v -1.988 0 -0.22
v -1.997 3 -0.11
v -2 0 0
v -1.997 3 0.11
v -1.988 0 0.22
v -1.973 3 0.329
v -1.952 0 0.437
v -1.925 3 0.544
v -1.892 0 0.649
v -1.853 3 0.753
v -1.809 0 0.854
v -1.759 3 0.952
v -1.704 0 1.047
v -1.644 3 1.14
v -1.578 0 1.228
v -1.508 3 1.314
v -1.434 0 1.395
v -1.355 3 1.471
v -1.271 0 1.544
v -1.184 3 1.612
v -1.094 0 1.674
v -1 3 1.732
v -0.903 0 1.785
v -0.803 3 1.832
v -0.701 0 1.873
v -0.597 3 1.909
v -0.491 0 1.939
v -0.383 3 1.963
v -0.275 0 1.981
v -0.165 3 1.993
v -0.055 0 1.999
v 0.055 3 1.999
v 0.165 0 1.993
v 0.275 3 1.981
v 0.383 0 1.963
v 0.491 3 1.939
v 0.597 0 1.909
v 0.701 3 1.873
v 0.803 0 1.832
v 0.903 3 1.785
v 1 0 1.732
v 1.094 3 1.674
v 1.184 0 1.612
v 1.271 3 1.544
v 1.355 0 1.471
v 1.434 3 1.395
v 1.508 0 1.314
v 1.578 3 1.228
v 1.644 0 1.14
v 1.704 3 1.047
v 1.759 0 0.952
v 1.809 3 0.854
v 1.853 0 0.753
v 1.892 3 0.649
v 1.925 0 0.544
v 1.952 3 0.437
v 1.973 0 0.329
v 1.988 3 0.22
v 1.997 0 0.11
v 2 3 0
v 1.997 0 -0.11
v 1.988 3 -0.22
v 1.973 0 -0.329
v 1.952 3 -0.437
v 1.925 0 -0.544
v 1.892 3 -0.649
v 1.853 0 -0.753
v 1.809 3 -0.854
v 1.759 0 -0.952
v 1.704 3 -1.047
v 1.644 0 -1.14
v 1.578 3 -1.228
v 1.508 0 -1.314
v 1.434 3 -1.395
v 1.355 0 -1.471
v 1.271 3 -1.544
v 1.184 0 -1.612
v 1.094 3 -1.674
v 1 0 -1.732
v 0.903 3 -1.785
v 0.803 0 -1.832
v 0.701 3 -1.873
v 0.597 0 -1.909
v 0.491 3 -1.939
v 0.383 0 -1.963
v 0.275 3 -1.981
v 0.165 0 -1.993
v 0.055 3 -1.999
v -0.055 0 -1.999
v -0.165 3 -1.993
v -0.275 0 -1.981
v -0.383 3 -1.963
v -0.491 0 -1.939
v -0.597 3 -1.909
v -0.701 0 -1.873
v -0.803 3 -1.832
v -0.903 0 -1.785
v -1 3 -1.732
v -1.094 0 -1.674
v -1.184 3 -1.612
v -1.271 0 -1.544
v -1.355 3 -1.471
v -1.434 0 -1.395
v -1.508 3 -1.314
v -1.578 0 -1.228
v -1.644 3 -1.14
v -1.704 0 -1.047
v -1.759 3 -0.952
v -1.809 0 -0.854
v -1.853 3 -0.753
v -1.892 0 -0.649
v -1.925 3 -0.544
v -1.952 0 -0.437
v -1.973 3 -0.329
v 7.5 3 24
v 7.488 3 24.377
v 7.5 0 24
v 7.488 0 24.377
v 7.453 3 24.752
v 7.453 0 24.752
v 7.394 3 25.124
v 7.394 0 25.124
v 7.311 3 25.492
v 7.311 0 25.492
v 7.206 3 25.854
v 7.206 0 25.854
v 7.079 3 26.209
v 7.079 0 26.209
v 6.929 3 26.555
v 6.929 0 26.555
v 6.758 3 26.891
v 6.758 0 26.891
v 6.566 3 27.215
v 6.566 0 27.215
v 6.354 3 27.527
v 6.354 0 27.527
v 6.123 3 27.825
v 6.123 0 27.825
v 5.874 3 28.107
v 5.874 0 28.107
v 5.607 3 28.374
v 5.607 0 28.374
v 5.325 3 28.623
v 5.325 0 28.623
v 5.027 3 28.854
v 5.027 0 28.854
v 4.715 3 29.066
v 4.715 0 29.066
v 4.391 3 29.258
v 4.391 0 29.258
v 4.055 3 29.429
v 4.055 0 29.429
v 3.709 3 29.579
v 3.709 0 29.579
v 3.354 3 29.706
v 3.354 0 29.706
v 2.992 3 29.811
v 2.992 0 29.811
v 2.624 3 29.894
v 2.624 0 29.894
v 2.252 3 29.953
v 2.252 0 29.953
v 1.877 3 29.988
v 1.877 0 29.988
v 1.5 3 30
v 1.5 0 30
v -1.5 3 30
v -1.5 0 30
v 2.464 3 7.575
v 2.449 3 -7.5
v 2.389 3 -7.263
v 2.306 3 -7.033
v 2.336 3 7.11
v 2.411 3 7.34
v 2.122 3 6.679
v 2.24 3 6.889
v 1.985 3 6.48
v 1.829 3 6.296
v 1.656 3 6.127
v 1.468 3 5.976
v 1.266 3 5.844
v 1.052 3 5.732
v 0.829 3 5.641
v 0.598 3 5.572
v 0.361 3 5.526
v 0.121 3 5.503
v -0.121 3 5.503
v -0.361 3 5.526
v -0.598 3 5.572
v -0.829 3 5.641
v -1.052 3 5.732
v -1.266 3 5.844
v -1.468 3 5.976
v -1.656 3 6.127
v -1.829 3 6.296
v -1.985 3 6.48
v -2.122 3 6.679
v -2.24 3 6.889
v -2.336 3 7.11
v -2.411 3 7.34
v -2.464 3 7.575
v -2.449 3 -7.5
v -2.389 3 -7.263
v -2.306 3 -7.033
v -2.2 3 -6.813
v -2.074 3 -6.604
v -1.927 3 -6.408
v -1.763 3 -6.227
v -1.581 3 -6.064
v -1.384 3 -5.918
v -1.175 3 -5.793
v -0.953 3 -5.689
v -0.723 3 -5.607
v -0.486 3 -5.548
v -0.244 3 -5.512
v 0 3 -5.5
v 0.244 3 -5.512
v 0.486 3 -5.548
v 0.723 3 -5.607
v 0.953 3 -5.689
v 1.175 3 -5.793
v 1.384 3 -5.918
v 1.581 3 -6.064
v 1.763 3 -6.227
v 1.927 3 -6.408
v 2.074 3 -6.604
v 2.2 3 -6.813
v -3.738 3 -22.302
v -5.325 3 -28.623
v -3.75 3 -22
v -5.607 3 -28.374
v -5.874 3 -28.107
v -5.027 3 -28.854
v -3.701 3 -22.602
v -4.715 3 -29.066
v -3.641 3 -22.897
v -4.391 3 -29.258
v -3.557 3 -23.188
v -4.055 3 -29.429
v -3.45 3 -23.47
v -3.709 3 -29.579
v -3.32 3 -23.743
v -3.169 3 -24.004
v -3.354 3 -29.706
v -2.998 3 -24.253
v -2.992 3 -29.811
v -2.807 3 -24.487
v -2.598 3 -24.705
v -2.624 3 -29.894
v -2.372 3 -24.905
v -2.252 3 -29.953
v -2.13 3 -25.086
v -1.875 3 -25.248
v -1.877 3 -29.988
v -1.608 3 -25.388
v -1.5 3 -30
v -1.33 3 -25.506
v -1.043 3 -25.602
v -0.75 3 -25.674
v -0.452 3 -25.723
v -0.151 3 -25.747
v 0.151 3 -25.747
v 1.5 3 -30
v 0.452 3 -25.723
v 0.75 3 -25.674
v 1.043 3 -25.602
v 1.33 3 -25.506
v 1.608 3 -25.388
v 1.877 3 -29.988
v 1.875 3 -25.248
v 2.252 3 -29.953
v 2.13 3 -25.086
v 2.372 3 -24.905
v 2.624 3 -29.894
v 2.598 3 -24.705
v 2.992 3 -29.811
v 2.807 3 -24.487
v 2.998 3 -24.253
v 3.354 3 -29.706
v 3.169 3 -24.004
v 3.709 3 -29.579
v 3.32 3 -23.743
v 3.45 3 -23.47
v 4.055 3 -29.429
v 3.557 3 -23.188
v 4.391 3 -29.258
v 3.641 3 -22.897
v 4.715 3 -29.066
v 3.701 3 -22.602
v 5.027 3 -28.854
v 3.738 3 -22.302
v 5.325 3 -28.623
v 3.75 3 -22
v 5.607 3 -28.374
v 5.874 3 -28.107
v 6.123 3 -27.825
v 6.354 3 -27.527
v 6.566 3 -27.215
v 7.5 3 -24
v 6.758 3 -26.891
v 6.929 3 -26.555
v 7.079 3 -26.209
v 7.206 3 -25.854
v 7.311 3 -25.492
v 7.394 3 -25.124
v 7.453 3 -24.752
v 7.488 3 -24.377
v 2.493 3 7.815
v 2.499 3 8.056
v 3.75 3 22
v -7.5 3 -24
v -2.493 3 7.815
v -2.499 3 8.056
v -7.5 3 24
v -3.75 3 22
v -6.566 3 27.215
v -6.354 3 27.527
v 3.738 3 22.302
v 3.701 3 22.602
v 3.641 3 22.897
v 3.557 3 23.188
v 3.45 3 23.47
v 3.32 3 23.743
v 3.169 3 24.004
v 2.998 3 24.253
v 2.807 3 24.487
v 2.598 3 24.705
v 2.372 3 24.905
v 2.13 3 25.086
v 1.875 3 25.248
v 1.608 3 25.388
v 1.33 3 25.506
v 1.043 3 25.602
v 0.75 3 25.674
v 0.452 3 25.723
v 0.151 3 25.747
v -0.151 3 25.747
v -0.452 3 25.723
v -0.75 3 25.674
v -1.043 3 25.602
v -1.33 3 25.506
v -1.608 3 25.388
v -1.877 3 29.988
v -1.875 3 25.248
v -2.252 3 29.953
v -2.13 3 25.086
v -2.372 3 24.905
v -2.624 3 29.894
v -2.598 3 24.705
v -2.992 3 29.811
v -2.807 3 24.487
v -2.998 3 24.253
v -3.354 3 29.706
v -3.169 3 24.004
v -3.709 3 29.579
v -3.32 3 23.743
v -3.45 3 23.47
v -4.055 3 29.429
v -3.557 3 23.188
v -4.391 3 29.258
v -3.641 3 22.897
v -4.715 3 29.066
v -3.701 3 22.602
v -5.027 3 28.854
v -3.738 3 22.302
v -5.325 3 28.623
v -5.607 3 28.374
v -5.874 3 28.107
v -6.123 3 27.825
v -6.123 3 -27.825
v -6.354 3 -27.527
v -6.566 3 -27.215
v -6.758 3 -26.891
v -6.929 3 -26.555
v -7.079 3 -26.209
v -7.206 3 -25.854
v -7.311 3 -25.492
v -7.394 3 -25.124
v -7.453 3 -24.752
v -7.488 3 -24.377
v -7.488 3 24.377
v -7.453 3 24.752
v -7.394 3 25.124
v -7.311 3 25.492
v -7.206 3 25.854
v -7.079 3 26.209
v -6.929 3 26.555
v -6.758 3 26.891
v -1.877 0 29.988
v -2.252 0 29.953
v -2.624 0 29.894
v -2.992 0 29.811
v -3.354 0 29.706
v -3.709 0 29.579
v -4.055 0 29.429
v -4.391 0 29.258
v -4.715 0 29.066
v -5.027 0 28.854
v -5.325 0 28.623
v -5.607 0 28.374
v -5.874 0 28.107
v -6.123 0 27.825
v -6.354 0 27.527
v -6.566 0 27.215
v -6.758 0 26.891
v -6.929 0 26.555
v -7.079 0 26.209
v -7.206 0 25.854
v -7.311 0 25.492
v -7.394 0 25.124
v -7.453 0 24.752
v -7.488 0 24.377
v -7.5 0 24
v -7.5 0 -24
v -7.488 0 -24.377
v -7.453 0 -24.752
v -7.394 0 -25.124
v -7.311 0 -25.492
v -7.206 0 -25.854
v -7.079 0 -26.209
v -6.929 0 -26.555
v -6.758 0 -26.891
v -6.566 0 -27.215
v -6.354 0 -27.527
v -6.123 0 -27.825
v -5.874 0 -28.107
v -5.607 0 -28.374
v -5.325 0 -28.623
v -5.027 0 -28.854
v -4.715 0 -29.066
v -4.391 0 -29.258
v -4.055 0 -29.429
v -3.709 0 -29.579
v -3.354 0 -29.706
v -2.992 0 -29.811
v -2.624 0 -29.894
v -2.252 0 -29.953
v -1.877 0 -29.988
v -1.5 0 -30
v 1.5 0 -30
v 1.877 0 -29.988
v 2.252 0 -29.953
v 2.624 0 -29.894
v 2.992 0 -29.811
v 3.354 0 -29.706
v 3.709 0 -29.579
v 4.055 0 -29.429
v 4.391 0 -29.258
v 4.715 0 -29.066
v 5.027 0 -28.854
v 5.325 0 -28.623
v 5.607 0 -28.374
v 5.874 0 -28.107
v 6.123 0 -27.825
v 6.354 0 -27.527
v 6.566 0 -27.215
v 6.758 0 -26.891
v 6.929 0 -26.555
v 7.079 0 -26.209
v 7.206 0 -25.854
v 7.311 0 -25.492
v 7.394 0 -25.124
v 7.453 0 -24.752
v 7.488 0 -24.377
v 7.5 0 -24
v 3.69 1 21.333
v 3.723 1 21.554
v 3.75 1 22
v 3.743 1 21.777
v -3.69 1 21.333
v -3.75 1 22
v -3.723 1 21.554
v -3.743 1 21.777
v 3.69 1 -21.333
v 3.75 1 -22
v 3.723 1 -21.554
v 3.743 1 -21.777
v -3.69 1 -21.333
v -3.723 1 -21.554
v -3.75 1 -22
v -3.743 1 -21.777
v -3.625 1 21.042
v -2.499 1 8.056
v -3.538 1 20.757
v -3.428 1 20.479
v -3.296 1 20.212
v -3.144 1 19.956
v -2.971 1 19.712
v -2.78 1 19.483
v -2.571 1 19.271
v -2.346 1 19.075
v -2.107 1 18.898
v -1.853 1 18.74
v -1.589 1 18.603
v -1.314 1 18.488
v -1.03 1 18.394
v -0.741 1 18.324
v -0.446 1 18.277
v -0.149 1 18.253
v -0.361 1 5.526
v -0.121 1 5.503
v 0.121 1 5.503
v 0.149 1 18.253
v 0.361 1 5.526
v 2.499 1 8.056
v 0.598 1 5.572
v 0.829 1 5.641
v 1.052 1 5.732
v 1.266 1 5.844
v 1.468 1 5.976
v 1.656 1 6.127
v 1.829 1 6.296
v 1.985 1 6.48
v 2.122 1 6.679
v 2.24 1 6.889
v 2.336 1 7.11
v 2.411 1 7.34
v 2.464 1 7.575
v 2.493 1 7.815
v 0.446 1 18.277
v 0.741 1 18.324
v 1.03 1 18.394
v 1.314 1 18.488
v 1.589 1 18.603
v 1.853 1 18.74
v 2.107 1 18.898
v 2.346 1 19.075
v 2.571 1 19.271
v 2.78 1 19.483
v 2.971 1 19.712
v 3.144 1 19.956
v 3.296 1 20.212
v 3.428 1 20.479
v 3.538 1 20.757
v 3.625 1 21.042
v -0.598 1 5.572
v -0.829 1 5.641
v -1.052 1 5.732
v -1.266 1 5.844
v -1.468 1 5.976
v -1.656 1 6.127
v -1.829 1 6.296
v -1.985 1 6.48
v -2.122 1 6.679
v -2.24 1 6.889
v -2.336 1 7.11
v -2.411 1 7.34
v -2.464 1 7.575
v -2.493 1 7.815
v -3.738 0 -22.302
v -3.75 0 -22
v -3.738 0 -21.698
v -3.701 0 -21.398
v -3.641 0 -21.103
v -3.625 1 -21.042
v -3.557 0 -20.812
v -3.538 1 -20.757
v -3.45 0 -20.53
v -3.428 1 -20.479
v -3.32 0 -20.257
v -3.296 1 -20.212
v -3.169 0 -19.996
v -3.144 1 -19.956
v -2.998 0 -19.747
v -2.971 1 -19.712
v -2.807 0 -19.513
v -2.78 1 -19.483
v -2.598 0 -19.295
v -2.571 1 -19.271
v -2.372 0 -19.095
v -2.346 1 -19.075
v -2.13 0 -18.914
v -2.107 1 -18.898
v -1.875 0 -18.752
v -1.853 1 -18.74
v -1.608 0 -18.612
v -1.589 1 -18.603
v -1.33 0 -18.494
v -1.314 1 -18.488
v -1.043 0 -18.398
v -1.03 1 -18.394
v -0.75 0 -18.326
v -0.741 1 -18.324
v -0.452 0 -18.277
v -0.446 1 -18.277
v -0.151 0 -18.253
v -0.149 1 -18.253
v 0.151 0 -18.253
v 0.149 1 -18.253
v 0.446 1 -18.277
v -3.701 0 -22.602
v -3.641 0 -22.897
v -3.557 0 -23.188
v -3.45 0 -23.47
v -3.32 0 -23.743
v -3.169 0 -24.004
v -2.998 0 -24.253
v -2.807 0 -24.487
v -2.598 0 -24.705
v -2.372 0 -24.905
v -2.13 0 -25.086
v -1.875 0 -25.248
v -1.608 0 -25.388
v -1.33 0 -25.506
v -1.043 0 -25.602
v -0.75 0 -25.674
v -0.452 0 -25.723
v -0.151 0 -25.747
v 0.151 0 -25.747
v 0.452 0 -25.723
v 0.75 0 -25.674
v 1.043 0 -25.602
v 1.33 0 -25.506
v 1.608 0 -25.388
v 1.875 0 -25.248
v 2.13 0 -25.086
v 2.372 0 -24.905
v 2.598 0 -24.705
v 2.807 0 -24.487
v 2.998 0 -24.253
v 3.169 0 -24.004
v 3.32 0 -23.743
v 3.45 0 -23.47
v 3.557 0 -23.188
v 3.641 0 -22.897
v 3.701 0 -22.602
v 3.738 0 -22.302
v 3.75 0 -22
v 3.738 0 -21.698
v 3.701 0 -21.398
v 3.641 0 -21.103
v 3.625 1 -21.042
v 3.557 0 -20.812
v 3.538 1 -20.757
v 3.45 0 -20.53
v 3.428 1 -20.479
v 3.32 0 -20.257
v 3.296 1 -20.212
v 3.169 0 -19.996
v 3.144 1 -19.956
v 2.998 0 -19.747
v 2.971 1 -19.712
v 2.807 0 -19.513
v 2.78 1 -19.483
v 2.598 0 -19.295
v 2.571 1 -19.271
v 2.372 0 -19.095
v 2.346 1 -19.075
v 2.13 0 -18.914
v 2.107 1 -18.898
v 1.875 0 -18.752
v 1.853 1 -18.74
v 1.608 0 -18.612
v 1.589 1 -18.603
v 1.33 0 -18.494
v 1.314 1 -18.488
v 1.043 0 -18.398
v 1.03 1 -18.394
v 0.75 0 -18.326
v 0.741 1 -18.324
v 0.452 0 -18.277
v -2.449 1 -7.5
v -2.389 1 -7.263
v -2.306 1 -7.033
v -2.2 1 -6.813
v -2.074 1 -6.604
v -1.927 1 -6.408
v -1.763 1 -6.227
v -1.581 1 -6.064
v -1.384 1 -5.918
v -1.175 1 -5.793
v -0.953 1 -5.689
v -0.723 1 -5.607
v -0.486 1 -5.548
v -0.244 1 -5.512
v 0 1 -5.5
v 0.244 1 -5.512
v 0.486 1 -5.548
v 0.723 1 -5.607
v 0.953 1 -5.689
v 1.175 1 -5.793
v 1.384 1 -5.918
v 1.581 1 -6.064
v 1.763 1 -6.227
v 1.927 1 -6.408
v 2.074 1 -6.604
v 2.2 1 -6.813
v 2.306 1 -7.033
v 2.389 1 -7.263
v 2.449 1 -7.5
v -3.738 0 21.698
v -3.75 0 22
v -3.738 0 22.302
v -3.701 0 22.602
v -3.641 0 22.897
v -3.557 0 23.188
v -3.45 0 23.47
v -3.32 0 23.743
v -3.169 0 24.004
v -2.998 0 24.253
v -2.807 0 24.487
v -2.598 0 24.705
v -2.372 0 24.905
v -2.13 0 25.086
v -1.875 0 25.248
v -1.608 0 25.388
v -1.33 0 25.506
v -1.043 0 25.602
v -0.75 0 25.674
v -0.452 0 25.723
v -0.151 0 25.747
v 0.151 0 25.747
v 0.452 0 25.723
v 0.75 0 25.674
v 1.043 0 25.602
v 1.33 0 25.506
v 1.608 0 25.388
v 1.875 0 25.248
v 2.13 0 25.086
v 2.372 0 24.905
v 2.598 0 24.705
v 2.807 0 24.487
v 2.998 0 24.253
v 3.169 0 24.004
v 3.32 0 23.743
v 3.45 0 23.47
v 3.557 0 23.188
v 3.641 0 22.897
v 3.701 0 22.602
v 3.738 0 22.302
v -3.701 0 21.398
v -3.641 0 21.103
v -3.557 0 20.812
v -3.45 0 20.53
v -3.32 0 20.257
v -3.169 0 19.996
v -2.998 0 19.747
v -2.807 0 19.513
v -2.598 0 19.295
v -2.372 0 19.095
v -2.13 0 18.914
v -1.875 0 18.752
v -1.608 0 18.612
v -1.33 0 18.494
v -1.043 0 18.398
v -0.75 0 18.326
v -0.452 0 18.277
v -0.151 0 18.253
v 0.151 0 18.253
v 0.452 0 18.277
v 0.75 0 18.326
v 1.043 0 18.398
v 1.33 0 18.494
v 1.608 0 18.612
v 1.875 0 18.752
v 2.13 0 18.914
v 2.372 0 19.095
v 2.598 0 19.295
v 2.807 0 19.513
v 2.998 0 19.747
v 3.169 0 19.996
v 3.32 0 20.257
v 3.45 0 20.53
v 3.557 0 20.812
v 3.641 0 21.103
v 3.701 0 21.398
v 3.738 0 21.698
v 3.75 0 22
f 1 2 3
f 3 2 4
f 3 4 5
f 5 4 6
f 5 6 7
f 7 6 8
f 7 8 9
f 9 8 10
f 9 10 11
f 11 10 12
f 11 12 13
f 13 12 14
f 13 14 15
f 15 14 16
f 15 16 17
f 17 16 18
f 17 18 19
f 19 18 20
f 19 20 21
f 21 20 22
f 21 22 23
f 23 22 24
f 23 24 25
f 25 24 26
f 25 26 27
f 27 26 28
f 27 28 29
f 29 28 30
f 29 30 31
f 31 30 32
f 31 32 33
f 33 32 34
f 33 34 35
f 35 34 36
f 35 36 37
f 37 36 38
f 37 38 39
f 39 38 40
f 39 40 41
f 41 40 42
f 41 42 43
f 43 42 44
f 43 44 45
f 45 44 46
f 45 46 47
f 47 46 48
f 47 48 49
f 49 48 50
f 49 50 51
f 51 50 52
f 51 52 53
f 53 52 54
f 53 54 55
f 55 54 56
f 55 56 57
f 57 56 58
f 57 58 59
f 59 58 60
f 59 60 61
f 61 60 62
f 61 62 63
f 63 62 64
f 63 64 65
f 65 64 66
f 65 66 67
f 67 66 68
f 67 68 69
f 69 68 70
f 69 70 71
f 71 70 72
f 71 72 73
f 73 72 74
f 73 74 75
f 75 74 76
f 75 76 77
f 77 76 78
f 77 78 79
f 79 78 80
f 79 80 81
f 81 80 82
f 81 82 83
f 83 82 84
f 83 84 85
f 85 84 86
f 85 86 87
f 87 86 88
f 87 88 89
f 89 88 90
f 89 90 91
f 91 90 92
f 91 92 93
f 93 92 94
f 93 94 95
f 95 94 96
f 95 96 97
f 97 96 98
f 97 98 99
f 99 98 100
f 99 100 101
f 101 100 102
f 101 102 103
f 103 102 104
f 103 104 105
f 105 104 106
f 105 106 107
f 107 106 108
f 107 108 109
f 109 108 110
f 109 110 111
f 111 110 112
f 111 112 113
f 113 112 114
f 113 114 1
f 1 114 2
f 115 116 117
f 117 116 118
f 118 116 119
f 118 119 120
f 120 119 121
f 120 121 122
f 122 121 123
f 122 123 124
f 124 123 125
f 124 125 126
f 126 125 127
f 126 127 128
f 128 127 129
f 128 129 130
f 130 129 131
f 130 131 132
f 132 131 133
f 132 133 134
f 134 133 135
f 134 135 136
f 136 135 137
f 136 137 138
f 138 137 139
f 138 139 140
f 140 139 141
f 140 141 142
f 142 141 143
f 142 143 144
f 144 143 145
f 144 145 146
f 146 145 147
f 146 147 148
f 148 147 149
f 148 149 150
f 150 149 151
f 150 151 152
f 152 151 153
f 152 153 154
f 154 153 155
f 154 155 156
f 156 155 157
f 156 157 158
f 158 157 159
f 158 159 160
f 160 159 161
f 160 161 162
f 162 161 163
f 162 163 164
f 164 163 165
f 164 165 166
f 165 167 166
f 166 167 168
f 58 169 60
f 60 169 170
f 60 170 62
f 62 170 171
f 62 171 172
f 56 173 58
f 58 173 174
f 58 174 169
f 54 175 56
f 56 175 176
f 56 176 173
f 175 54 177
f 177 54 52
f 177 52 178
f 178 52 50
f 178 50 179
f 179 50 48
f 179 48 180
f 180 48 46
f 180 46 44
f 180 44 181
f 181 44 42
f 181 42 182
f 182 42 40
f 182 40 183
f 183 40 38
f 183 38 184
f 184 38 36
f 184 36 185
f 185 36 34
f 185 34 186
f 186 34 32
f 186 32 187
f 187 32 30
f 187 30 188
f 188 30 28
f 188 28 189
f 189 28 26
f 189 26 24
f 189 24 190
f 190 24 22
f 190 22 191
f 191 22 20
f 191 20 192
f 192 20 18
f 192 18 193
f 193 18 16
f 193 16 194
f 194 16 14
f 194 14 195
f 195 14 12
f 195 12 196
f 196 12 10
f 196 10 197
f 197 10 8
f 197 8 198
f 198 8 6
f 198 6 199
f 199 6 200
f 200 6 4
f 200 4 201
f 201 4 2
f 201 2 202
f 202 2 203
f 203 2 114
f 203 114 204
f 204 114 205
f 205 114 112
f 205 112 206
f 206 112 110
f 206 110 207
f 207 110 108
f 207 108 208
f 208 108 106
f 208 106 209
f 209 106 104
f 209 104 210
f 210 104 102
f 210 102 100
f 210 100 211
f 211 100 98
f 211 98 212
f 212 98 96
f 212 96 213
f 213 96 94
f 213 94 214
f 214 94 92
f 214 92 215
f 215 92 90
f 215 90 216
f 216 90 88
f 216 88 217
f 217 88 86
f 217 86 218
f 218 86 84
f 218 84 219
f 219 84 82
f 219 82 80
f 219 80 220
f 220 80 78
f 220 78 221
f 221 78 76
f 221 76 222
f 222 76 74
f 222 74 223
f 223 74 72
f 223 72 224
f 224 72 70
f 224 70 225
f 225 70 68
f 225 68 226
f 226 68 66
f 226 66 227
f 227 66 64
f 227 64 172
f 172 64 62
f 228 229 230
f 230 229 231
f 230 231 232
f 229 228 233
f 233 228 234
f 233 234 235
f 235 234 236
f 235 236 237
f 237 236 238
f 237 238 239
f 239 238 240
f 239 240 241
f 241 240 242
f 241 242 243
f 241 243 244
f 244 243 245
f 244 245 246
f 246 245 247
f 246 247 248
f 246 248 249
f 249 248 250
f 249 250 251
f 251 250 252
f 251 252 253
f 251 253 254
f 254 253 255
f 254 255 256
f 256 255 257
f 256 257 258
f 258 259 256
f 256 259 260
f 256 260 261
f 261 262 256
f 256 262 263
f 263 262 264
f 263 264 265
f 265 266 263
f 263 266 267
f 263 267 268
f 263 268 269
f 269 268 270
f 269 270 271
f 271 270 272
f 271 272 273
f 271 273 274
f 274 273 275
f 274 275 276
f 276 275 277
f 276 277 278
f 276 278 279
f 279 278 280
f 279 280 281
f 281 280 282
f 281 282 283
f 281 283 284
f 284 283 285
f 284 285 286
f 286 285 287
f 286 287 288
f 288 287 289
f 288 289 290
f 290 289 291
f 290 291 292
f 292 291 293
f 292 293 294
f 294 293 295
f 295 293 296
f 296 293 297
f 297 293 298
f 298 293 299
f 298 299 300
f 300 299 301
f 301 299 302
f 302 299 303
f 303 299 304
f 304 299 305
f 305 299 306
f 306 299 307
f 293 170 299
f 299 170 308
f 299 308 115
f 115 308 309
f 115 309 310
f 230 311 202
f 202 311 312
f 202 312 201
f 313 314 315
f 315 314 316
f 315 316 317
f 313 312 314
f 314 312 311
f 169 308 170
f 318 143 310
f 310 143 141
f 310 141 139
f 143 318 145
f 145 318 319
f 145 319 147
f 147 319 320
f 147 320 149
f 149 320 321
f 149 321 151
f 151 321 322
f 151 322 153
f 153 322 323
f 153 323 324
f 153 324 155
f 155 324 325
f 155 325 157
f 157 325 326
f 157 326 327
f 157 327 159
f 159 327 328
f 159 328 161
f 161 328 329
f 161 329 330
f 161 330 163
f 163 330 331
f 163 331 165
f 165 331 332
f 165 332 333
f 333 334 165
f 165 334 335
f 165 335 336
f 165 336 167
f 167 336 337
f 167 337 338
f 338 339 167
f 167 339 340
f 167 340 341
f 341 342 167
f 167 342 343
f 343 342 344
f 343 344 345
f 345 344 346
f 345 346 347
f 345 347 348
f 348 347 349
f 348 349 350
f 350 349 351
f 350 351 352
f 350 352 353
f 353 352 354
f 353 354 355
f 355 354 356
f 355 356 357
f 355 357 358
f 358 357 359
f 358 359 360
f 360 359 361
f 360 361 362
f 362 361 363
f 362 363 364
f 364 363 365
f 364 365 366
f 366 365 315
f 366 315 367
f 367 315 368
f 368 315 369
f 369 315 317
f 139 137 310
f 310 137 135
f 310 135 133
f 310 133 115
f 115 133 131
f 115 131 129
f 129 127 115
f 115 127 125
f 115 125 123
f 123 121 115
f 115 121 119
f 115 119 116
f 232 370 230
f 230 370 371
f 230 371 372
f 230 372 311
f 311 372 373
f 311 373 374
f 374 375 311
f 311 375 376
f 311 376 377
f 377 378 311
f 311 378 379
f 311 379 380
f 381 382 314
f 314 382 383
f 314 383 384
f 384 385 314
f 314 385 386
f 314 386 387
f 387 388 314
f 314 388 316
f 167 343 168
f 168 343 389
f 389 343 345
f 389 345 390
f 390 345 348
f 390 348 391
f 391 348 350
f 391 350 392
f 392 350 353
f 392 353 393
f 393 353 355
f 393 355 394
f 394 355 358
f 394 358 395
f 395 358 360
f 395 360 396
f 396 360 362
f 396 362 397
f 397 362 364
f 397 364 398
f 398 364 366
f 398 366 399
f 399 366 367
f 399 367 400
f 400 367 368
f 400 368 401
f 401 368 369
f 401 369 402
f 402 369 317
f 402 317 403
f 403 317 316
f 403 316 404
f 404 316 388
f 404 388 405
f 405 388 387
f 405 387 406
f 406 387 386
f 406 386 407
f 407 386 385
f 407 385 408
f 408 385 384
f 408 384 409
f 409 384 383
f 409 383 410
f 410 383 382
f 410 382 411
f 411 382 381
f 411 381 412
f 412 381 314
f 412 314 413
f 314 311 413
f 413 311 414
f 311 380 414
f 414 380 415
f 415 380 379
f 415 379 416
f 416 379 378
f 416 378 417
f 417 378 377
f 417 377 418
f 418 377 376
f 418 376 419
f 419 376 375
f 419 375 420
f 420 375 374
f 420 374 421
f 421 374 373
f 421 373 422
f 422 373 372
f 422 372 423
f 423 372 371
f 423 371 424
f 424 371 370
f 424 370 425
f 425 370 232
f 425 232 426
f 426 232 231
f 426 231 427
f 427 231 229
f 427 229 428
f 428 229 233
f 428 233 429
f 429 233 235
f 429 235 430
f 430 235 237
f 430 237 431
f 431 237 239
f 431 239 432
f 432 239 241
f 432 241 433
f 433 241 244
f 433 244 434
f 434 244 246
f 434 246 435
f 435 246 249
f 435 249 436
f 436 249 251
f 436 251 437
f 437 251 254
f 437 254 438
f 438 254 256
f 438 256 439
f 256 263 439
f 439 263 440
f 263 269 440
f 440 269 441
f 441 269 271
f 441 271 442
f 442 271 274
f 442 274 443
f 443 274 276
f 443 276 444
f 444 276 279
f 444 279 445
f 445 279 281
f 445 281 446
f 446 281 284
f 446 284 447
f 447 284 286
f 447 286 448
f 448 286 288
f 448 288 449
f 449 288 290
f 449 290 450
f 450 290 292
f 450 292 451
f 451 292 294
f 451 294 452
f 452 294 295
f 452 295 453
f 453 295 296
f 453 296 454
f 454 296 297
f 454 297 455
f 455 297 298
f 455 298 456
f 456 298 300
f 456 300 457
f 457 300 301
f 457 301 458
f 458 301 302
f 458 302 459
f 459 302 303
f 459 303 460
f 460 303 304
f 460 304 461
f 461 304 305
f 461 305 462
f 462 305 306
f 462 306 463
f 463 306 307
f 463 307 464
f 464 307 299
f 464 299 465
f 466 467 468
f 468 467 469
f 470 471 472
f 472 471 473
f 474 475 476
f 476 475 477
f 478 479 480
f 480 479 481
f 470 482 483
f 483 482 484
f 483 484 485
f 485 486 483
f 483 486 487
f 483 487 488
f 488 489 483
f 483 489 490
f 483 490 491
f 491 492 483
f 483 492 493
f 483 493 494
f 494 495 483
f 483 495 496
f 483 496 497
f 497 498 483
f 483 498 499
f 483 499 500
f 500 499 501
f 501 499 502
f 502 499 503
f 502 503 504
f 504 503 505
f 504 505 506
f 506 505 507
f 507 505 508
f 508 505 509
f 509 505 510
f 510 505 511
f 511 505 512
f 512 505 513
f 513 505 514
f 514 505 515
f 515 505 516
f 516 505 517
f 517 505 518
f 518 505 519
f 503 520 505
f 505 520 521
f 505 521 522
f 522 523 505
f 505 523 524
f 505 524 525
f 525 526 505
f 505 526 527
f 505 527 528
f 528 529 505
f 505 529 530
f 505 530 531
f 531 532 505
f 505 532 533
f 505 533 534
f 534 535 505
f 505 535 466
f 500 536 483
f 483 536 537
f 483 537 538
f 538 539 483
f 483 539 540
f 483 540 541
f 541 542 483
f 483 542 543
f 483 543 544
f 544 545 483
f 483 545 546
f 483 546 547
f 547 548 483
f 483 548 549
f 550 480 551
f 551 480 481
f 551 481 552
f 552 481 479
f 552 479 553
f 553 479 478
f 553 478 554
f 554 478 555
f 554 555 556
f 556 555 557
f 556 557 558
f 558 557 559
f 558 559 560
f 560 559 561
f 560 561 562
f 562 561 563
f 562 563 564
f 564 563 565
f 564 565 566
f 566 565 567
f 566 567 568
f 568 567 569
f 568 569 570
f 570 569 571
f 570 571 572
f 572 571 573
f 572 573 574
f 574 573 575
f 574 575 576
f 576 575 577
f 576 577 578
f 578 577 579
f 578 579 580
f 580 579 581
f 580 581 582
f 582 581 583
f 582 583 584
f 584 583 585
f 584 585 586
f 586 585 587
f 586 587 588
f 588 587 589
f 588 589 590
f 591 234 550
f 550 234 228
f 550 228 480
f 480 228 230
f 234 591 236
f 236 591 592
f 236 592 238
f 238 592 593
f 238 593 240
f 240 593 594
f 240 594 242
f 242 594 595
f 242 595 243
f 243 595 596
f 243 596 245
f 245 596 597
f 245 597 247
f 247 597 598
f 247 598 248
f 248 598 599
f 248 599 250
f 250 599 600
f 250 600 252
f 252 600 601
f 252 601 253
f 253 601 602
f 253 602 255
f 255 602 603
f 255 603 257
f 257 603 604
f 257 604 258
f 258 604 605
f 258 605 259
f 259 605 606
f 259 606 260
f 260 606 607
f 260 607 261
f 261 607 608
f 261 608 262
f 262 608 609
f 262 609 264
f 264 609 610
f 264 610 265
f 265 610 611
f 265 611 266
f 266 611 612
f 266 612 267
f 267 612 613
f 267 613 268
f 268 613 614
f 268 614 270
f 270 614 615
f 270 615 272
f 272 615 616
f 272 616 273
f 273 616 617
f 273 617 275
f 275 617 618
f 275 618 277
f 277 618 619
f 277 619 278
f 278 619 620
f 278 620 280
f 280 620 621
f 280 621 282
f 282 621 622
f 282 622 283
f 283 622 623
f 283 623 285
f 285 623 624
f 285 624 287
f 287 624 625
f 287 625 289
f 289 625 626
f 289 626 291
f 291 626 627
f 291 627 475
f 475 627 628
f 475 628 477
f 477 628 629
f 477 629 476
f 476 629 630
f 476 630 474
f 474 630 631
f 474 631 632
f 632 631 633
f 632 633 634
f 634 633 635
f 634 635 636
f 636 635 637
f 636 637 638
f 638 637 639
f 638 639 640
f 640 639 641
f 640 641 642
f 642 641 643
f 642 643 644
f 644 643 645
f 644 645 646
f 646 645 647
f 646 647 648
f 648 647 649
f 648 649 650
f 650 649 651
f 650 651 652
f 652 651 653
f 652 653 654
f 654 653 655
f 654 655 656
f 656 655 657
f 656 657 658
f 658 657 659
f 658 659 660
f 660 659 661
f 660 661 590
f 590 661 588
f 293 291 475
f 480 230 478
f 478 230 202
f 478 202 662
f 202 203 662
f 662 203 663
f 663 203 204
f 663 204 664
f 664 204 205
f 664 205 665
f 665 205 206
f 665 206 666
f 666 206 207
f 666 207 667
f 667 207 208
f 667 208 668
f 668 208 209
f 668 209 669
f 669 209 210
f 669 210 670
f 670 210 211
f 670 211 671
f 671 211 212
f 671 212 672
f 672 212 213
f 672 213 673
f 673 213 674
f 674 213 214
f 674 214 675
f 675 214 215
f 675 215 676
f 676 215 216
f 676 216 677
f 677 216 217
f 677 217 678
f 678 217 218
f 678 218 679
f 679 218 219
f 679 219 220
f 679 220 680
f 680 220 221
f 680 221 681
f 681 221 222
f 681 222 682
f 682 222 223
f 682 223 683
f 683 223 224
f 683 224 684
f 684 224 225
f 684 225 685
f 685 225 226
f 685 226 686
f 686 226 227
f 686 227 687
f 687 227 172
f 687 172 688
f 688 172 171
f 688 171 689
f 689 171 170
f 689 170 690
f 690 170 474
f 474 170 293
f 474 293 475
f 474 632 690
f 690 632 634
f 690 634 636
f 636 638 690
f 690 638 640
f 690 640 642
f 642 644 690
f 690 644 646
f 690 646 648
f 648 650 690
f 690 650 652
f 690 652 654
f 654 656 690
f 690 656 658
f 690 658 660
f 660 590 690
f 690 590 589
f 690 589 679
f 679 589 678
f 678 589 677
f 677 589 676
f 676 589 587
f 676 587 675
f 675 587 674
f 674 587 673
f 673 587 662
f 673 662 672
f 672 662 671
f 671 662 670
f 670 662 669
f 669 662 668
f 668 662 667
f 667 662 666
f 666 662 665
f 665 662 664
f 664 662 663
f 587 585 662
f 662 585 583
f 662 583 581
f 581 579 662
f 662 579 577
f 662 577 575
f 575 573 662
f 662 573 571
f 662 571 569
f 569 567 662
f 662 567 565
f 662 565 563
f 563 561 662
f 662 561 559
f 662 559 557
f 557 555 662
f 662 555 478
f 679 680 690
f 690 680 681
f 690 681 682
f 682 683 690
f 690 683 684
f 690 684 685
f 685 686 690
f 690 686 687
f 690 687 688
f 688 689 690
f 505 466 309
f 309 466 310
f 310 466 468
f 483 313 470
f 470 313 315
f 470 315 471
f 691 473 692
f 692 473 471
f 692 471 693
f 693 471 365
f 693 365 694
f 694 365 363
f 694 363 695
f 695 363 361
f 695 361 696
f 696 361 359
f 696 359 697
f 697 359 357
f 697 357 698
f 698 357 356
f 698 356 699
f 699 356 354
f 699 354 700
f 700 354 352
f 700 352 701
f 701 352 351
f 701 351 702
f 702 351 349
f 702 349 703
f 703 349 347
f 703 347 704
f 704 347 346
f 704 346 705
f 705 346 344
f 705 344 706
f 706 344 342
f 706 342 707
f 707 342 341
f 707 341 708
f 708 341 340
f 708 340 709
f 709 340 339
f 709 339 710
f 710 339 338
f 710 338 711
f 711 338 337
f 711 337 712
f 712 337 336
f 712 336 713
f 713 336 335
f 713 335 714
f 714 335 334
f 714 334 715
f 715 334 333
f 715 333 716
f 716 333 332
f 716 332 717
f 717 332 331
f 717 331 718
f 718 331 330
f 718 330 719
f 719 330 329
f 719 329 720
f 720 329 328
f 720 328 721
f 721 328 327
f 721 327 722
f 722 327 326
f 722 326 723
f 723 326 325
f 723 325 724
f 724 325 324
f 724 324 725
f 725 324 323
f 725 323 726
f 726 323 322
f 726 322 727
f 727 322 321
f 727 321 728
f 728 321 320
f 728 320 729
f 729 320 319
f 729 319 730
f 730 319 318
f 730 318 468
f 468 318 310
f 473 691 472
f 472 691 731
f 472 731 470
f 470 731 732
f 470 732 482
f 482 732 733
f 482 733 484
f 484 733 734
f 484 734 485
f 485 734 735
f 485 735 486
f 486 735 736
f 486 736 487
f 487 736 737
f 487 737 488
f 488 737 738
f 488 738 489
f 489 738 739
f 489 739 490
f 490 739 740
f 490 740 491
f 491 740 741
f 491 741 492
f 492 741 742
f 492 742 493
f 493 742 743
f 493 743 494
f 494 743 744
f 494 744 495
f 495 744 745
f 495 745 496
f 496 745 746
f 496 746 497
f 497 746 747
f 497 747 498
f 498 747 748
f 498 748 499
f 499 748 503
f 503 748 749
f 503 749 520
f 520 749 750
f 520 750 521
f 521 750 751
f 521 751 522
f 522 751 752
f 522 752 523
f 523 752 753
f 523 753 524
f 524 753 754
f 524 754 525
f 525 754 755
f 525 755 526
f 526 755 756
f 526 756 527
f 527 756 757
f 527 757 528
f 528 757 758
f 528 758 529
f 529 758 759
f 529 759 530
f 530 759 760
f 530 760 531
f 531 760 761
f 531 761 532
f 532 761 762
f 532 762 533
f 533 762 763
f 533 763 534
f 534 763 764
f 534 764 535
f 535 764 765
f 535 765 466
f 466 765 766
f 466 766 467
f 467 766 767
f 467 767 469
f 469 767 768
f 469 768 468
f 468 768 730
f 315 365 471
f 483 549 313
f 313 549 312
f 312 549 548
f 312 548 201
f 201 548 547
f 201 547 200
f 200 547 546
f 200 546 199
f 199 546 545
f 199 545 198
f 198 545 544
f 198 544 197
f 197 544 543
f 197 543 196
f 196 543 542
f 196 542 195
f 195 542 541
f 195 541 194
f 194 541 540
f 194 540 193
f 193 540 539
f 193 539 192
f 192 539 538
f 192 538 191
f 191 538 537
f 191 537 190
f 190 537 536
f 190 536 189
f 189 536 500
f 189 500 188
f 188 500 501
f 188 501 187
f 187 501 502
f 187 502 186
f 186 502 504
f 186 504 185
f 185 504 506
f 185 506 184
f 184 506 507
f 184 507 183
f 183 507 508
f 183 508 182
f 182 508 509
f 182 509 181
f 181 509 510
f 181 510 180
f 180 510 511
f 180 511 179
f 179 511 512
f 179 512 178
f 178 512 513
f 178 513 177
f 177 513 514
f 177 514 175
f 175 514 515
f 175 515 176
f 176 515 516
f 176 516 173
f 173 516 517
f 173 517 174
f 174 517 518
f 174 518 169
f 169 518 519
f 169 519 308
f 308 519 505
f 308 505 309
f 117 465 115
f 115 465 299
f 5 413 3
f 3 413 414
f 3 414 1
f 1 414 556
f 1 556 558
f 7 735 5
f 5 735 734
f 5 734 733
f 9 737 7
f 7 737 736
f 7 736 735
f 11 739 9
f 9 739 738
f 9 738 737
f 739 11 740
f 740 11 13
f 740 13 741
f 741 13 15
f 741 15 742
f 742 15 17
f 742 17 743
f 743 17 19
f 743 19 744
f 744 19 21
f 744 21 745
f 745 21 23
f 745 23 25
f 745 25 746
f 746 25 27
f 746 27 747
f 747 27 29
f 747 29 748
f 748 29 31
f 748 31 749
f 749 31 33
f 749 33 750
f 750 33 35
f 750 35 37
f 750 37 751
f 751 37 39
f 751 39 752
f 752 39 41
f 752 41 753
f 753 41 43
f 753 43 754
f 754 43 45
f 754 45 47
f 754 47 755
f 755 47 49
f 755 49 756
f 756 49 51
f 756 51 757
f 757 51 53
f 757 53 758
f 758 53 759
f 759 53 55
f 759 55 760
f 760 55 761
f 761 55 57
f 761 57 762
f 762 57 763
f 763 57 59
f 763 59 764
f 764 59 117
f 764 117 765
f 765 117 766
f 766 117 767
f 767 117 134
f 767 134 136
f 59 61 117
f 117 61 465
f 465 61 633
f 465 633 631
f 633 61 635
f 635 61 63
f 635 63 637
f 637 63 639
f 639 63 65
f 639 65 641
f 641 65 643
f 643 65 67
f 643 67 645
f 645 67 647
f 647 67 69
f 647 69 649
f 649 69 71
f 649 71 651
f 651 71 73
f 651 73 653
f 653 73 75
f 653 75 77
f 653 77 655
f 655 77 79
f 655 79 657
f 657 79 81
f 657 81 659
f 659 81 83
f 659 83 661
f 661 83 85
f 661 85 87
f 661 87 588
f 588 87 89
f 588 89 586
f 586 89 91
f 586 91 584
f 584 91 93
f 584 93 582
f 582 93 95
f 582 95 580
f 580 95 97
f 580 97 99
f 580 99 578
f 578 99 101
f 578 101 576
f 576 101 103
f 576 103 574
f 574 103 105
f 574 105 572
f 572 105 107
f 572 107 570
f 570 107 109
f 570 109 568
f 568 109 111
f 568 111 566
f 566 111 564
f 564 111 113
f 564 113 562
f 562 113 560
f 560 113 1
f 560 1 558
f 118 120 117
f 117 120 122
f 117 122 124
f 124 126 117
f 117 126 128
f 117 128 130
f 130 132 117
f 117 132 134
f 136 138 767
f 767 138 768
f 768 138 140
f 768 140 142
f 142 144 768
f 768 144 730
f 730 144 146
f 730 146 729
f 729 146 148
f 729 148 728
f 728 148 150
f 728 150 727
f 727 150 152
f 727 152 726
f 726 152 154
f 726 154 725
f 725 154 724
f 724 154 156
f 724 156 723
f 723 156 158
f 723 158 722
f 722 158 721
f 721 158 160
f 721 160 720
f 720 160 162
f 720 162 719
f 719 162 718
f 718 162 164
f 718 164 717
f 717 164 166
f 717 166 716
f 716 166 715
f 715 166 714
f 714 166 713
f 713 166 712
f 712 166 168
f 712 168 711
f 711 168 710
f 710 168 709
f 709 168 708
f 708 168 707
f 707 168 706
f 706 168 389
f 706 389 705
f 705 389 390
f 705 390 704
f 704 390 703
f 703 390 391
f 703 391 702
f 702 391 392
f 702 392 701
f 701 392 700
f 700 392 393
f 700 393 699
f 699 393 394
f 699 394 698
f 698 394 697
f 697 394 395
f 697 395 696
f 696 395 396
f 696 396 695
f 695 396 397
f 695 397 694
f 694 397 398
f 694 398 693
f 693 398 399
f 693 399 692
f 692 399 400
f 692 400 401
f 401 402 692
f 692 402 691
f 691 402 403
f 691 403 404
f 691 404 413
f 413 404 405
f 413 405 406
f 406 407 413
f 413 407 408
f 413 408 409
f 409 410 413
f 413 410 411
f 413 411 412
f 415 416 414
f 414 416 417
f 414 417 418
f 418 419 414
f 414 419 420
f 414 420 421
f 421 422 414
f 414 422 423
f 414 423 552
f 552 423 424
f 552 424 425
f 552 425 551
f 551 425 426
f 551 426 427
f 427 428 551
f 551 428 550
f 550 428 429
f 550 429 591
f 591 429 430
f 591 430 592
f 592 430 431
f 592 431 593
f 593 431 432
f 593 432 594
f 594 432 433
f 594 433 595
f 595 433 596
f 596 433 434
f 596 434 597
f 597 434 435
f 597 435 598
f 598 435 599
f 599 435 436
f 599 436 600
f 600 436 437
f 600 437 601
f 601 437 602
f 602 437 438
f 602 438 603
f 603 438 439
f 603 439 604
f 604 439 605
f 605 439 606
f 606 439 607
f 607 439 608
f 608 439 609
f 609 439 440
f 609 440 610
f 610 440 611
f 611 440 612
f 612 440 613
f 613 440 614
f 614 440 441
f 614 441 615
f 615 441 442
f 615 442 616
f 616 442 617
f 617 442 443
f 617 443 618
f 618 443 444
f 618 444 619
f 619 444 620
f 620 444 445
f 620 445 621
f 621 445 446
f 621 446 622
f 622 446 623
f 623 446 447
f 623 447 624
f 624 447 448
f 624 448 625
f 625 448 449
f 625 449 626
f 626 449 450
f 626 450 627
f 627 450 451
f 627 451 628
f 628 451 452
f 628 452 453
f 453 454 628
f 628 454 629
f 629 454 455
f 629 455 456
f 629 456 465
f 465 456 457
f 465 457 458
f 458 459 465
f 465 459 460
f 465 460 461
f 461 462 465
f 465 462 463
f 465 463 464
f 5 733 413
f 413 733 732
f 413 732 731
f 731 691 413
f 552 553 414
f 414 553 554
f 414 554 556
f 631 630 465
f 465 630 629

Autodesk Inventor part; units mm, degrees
ref_plane "YZ Plane" through (0, 0, 0) normal (1, 0, 0) x (0, 1, 0)
ref_plane "XZ Plane" through (0, 0, 0) normal (0, 1, 0) x (-1, 0, 0)
ref_plane "XY Plane" through (0, 0, 0) normal (0, 0, 1) x (1, 0, 0)
sketch "Sketch1" plane through (0, 0, 0) normal (0, 1, 0) x (-1, 0, 0)
  line L0 (10.5, 0) -> (-10.5, 0) projected
  line L1 (0, -42) -> (0, 42) projected
  line L2 (7.5, -30) -> (-7.5, -30)
  line L3 (-7.5, -30) -> (-7.5, 30)
  line L4 (-7.5, 30) -> (7.5, 30)
  line L5 (7.5, 30) -> (7.5, -30)
  point P0 (0, 0)
  dimension "d0" = 15
  dimension "d1" = 60
extrude "Extrusion1" add sketch "Sketch1" along normal blind 3
sketch "Sketch2" plane through (0, 3, 0) normal (0, 1, 0) x (1, 0, 0)
  line L0 (7.5, 30) -> (-7.5, 30) projected
  line L1 (-7.5, 30) -> (-7.5, -30) projected
  line L2 (-7.5, -30) -> (7.5, -30) projected
  line L3 (7.5, -30) -> (7.5, 30) projected
  circle A0 centre (0, -22) radius 3.75
  circle A1 centre (0, -8) radius 2.5
  line L4 (0, 42) -> (0, -42) projected
  line L5 (-7.5, -5.5) -> (7.5, -5.5) construction
  line L6 (-2.4495, -7.5) -> (-3.75, -22)
  line L7 (3.75, -22) -> (2.4495, -7.5)
  line L8 (-10.5, 0) -> (10.5, 0) projected
  circle A2 centre (0, 22) radius 3.75
  circle A3 centre (0, 8) radius 2.5
  line L9 (-2.4495, 7.5) -> (-3.75, 22)
  line L10 (3.75, 22) -> (2.4495, 7.5)
  point P0 (0, 0)
  dimension "d4" = 7.5
  dimension "d5" = 8
  dimension "d6" = 5
  dimension "d9" = 16.5
  dimension "d10" = 2
  dimension "d11" = 8
  dimension "d12" = 8
  dimension "d13" = 2
extrude "Extrusion2" cut sketch "Sketch2" against normal blind 2 contours A2 L10 L4 | L4 A2 L9 | A2 L10 A3 L4 | L4 A3 L9 A2 | A3 L9 L4 | L4 A3 L10 | L4 A1 L6 | A1 L7 L4 | L4 A0 L7 | A0 L6 L4 | A1 L7 | L6 A1 | L4 A0 L6 A1 | A1 L7 A0 L4
sketch "Sketch3" plane through (0, 1, 0) normal (0, 1, 0) x (1, 0, 0)
  line L0 (7.5, 30) -> (-7.5, 30) projected
  line L1 (-7.5, 30) -> (-7.5, -30) projected
  line L2 (-7.5, -30) -> (7.5, -30) projected
  line L3 (7.5, -30) -> (7.5, 30) projected
  line L4 (-3.75, -22) -> (-2.4994, -8.0561) projected
  arc A0 (-3.75, -22) -> (3.75, -22) centre (0, -22) ccw projected
  line L5 (2.4994, -8.0561) -> (3.75, -22) projected
  arc A1 (2.4994, -8.0561) -> (-2.4994, -8.0561) centre (0, -8) ccw projected
  line L6 (3.75, 22) -> (2.4495, 7.5) projected
  arc A2 (3.75, 22) -> (-3.75, 22) centre (0, 22) ccw projected
  line L7 (-2.4495, 7.5) -> (-3.75, 22) projected
  arc A3 (-2.4495, 7.5) -> (2.4495, 7.5) centre (0, 8) ccw projected
  line L8 (-10.5, 0) -> (10.5, 0) projected
  point P0 (0, 0)
hole "Hole1" at (0, 1, 22) at (0, 1, -22) direction (0, -1, 0) diameter 7.5 end through all
fillet "Fillet1" radius 6 4 edges at (7.5, 1.5, -30) (-7.5, 1.5, -30) (-7.5, 1.5, 30) (7.5, 1.5, 30)
sketch "Sketch5" plane through (0, 3, 0) normal (0, 1, 0) x (1, 0, 0)
  arc A0 (3.75, 22) -> (-3.75, 22) centre (0, 22) ccw projected
  line L0 (3.75, 22) -> (2.4495, 7.5) projected
  arc A1 (-2.4495, 7.5) -> (2.4495, 7.5) centre (0, 8) ccw projected
  line L1 (-2.4495, 7.5) -> (-3.75, 22) projected
  line L2 (-3.75, -22) -> (-2.4994, -8.0561) projected
  arc A2 (2.4994, -8.0561) -> (-2.4994, -8.0561) centre (0, -8) ccw projected
  line L3 (2.4994, -8.0561) -> (3.75, -22) projected
  arc A3 (-3.75, -22) -> (3.75, -22) centre (0, -22) ccw projected
  arc A4 (1.5, -30) -> (7.5, -24) centre (1.5, -24) ccw projected
  line L4 (7.5, -24) -> (7.5, 24) projected
  arc A5 (7.5, 24) -> (1.5, 30) centre (1.5, 24) ccw projected
  line L5 (1.5, 30) -> (-1.5, 30) projected
  arc A6 (-1.5, 30) -> (-7.5, 24) centre (-1.5, 24) ccw projected
  line L6 (-7.5, 24) -> (-7.5, -24) projected
  arc A7 (-7.5, -24) -> (-1.5, -30) centre (-1.5, -24) ccw projected
  line L7 (-1.5, -30) -> (1.5, -30) projected
  point P0 (0, 0)
  point P1 (0, 0)
hole "Hole3" at (0, 3, 0) direction (0, -1, 0) diameter 4 end through all
properties part number "femur_v5"
